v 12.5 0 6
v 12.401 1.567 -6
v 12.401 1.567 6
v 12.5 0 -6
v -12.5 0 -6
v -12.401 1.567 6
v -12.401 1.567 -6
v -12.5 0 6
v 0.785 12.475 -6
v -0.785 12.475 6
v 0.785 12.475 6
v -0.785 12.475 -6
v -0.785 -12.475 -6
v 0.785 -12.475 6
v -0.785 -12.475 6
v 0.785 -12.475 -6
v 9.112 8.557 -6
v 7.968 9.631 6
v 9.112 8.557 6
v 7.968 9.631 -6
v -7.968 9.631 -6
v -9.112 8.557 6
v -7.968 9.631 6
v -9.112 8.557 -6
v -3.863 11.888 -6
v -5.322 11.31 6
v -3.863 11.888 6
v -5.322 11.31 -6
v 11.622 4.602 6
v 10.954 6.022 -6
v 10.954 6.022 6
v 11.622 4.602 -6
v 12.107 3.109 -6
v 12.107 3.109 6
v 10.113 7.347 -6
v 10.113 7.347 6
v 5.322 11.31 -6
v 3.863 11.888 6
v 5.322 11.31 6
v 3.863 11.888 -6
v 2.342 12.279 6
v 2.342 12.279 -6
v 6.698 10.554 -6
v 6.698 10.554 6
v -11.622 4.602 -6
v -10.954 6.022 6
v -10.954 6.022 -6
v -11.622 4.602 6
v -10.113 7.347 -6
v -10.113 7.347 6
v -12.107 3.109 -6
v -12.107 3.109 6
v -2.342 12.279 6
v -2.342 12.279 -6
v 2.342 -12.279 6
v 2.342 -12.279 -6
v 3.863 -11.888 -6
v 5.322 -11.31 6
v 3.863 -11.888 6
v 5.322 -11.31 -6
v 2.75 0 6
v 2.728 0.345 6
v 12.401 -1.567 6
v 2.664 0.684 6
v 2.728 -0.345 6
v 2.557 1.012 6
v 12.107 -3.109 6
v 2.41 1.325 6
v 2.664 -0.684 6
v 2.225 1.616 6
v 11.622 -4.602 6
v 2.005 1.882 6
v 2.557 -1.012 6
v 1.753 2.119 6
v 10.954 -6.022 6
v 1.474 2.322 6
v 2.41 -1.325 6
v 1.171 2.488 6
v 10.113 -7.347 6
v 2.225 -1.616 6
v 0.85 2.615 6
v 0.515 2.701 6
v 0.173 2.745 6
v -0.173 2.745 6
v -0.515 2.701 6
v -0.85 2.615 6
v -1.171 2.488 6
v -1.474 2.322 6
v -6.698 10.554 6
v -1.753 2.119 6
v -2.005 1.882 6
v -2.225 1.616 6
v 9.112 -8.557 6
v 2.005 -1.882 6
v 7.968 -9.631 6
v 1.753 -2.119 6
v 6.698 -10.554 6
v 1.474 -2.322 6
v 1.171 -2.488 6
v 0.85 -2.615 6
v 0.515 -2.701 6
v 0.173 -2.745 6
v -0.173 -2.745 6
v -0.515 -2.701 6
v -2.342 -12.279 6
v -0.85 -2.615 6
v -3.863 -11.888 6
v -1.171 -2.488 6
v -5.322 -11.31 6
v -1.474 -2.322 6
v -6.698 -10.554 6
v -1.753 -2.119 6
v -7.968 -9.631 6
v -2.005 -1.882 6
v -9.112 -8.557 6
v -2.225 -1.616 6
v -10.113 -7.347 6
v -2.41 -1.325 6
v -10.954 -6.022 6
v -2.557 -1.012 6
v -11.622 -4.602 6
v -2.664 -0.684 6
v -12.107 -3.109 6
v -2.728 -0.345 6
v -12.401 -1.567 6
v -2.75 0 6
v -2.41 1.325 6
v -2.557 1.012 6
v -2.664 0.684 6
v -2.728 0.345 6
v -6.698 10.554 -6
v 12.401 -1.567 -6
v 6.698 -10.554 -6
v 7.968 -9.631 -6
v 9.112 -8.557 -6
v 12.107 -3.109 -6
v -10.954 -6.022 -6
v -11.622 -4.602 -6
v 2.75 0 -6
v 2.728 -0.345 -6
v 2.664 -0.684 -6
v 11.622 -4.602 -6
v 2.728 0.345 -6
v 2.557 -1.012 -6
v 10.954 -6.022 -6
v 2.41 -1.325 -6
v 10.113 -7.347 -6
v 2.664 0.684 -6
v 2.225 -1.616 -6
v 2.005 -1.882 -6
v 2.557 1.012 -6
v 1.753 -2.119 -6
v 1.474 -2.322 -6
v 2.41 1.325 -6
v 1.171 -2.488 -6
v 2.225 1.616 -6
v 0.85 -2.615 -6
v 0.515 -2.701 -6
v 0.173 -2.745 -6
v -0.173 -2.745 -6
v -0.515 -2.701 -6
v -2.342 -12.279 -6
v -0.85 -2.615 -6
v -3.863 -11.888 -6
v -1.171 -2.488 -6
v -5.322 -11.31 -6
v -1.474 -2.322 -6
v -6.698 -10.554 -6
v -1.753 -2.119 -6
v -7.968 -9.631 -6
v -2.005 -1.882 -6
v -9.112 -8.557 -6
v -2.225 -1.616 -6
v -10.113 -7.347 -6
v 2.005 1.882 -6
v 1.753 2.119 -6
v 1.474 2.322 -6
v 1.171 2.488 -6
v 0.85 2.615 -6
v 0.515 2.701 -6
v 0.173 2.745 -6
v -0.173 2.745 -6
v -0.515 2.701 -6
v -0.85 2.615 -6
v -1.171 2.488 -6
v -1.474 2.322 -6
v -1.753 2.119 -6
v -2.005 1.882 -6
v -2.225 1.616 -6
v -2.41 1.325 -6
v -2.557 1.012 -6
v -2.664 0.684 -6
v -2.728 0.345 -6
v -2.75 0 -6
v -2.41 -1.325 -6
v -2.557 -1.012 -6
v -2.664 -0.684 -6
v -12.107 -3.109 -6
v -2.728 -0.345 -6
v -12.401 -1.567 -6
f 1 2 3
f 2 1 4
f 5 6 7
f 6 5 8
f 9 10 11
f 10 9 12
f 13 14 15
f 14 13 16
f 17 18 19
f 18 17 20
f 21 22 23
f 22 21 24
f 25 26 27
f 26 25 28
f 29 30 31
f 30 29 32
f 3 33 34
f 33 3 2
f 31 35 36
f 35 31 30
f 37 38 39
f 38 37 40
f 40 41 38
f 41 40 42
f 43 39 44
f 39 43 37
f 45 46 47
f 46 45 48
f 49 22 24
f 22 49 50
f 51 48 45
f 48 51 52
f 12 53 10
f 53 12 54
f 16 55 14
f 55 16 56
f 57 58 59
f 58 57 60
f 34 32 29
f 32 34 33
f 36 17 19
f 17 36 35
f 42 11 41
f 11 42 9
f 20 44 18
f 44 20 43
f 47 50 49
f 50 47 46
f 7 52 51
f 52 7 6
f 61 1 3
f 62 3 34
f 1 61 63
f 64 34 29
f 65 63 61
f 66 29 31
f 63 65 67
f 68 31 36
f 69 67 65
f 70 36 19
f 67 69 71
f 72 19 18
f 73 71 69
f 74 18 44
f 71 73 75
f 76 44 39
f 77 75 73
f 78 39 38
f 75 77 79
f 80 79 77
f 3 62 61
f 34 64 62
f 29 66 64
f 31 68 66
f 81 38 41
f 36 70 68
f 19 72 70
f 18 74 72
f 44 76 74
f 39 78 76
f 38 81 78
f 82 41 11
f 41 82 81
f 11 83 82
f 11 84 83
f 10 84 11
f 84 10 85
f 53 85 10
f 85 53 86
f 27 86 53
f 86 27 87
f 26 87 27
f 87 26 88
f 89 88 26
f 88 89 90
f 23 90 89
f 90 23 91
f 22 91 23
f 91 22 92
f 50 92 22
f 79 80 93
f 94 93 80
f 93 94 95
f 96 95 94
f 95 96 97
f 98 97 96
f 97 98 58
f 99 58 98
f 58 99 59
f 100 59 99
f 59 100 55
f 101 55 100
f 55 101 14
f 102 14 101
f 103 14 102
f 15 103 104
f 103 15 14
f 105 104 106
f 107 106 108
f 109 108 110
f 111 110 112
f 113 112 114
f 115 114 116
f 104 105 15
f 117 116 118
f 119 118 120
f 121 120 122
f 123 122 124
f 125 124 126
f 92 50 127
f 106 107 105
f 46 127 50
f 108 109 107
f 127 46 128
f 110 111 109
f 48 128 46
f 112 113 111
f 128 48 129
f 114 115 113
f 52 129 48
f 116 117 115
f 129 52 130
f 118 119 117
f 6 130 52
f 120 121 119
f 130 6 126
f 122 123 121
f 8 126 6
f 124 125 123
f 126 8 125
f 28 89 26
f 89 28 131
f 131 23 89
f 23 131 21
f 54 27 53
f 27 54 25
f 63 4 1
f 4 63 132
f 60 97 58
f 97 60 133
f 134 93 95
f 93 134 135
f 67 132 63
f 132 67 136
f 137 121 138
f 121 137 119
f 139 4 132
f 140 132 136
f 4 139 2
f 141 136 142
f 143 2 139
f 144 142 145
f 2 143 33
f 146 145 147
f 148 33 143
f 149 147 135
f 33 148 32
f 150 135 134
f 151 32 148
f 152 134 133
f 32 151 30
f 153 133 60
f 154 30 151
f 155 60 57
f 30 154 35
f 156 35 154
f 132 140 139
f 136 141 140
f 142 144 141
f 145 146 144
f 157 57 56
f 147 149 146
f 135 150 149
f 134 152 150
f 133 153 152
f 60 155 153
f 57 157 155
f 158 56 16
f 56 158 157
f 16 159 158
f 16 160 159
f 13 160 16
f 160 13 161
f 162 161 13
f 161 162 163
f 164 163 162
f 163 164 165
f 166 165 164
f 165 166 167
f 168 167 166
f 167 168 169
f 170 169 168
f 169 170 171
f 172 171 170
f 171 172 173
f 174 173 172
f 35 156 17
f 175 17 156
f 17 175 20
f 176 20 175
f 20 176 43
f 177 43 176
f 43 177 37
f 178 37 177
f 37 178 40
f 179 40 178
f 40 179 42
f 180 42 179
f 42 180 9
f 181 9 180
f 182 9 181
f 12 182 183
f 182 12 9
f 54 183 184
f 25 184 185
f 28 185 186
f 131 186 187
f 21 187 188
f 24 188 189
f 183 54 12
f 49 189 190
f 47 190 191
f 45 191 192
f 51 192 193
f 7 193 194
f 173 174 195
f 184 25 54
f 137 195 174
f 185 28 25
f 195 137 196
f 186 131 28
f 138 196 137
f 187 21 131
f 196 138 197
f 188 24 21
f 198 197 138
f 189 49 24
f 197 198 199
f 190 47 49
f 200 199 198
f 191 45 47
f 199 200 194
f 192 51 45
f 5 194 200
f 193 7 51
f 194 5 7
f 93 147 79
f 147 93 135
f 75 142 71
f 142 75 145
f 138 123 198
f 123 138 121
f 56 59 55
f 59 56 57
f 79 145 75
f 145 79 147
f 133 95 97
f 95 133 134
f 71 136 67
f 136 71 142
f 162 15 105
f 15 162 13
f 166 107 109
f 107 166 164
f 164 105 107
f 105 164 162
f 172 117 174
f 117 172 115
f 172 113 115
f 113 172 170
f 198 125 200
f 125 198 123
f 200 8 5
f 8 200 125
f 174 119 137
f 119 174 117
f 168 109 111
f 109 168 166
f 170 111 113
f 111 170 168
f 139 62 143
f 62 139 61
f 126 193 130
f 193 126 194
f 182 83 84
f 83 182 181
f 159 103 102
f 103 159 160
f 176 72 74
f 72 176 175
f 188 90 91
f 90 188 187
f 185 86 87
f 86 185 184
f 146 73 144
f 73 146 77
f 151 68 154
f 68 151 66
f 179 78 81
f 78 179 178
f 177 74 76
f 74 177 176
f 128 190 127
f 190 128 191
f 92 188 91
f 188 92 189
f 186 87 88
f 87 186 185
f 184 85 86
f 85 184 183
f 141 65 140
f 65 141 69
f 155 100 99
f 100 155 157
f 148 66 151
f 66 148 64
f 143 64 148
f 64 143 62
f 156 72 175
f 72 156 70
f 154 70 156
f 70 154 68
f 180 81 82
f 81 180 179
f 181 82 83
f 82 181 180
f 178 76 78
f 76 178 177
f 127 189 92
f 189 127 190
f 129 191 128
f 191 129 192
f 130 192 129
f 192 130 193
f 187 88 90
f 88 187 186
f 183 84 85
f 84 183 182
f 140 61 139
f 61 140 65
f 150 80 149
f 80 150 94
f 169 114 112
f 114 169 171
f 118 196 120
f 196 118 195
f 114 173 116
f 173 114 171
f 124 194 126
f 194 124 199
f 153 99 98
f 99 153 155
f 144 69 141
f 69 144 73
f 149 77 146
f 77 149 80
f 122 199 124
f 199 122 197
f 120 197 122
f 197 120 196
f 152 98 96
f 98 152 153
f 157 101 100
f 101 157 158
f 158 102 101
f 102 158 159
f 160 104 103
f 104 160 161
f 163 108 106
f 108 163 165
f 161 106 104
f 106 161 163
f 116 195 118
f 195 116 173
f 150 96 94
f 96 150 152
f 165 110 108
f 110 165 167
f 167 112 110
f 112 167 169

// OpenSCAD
$fn = 50;


difference() {
	union() {
		translate(v = [0, 0, -6.0000000000]) {
			cylinder(h = 12, r = 12.5000000000);
		}
	}
	union() {
		translate(v = [0, 0, -100.0000000000]) {
			cylinder(h = 200, r = 2.7500000000);
		}
	}
}
